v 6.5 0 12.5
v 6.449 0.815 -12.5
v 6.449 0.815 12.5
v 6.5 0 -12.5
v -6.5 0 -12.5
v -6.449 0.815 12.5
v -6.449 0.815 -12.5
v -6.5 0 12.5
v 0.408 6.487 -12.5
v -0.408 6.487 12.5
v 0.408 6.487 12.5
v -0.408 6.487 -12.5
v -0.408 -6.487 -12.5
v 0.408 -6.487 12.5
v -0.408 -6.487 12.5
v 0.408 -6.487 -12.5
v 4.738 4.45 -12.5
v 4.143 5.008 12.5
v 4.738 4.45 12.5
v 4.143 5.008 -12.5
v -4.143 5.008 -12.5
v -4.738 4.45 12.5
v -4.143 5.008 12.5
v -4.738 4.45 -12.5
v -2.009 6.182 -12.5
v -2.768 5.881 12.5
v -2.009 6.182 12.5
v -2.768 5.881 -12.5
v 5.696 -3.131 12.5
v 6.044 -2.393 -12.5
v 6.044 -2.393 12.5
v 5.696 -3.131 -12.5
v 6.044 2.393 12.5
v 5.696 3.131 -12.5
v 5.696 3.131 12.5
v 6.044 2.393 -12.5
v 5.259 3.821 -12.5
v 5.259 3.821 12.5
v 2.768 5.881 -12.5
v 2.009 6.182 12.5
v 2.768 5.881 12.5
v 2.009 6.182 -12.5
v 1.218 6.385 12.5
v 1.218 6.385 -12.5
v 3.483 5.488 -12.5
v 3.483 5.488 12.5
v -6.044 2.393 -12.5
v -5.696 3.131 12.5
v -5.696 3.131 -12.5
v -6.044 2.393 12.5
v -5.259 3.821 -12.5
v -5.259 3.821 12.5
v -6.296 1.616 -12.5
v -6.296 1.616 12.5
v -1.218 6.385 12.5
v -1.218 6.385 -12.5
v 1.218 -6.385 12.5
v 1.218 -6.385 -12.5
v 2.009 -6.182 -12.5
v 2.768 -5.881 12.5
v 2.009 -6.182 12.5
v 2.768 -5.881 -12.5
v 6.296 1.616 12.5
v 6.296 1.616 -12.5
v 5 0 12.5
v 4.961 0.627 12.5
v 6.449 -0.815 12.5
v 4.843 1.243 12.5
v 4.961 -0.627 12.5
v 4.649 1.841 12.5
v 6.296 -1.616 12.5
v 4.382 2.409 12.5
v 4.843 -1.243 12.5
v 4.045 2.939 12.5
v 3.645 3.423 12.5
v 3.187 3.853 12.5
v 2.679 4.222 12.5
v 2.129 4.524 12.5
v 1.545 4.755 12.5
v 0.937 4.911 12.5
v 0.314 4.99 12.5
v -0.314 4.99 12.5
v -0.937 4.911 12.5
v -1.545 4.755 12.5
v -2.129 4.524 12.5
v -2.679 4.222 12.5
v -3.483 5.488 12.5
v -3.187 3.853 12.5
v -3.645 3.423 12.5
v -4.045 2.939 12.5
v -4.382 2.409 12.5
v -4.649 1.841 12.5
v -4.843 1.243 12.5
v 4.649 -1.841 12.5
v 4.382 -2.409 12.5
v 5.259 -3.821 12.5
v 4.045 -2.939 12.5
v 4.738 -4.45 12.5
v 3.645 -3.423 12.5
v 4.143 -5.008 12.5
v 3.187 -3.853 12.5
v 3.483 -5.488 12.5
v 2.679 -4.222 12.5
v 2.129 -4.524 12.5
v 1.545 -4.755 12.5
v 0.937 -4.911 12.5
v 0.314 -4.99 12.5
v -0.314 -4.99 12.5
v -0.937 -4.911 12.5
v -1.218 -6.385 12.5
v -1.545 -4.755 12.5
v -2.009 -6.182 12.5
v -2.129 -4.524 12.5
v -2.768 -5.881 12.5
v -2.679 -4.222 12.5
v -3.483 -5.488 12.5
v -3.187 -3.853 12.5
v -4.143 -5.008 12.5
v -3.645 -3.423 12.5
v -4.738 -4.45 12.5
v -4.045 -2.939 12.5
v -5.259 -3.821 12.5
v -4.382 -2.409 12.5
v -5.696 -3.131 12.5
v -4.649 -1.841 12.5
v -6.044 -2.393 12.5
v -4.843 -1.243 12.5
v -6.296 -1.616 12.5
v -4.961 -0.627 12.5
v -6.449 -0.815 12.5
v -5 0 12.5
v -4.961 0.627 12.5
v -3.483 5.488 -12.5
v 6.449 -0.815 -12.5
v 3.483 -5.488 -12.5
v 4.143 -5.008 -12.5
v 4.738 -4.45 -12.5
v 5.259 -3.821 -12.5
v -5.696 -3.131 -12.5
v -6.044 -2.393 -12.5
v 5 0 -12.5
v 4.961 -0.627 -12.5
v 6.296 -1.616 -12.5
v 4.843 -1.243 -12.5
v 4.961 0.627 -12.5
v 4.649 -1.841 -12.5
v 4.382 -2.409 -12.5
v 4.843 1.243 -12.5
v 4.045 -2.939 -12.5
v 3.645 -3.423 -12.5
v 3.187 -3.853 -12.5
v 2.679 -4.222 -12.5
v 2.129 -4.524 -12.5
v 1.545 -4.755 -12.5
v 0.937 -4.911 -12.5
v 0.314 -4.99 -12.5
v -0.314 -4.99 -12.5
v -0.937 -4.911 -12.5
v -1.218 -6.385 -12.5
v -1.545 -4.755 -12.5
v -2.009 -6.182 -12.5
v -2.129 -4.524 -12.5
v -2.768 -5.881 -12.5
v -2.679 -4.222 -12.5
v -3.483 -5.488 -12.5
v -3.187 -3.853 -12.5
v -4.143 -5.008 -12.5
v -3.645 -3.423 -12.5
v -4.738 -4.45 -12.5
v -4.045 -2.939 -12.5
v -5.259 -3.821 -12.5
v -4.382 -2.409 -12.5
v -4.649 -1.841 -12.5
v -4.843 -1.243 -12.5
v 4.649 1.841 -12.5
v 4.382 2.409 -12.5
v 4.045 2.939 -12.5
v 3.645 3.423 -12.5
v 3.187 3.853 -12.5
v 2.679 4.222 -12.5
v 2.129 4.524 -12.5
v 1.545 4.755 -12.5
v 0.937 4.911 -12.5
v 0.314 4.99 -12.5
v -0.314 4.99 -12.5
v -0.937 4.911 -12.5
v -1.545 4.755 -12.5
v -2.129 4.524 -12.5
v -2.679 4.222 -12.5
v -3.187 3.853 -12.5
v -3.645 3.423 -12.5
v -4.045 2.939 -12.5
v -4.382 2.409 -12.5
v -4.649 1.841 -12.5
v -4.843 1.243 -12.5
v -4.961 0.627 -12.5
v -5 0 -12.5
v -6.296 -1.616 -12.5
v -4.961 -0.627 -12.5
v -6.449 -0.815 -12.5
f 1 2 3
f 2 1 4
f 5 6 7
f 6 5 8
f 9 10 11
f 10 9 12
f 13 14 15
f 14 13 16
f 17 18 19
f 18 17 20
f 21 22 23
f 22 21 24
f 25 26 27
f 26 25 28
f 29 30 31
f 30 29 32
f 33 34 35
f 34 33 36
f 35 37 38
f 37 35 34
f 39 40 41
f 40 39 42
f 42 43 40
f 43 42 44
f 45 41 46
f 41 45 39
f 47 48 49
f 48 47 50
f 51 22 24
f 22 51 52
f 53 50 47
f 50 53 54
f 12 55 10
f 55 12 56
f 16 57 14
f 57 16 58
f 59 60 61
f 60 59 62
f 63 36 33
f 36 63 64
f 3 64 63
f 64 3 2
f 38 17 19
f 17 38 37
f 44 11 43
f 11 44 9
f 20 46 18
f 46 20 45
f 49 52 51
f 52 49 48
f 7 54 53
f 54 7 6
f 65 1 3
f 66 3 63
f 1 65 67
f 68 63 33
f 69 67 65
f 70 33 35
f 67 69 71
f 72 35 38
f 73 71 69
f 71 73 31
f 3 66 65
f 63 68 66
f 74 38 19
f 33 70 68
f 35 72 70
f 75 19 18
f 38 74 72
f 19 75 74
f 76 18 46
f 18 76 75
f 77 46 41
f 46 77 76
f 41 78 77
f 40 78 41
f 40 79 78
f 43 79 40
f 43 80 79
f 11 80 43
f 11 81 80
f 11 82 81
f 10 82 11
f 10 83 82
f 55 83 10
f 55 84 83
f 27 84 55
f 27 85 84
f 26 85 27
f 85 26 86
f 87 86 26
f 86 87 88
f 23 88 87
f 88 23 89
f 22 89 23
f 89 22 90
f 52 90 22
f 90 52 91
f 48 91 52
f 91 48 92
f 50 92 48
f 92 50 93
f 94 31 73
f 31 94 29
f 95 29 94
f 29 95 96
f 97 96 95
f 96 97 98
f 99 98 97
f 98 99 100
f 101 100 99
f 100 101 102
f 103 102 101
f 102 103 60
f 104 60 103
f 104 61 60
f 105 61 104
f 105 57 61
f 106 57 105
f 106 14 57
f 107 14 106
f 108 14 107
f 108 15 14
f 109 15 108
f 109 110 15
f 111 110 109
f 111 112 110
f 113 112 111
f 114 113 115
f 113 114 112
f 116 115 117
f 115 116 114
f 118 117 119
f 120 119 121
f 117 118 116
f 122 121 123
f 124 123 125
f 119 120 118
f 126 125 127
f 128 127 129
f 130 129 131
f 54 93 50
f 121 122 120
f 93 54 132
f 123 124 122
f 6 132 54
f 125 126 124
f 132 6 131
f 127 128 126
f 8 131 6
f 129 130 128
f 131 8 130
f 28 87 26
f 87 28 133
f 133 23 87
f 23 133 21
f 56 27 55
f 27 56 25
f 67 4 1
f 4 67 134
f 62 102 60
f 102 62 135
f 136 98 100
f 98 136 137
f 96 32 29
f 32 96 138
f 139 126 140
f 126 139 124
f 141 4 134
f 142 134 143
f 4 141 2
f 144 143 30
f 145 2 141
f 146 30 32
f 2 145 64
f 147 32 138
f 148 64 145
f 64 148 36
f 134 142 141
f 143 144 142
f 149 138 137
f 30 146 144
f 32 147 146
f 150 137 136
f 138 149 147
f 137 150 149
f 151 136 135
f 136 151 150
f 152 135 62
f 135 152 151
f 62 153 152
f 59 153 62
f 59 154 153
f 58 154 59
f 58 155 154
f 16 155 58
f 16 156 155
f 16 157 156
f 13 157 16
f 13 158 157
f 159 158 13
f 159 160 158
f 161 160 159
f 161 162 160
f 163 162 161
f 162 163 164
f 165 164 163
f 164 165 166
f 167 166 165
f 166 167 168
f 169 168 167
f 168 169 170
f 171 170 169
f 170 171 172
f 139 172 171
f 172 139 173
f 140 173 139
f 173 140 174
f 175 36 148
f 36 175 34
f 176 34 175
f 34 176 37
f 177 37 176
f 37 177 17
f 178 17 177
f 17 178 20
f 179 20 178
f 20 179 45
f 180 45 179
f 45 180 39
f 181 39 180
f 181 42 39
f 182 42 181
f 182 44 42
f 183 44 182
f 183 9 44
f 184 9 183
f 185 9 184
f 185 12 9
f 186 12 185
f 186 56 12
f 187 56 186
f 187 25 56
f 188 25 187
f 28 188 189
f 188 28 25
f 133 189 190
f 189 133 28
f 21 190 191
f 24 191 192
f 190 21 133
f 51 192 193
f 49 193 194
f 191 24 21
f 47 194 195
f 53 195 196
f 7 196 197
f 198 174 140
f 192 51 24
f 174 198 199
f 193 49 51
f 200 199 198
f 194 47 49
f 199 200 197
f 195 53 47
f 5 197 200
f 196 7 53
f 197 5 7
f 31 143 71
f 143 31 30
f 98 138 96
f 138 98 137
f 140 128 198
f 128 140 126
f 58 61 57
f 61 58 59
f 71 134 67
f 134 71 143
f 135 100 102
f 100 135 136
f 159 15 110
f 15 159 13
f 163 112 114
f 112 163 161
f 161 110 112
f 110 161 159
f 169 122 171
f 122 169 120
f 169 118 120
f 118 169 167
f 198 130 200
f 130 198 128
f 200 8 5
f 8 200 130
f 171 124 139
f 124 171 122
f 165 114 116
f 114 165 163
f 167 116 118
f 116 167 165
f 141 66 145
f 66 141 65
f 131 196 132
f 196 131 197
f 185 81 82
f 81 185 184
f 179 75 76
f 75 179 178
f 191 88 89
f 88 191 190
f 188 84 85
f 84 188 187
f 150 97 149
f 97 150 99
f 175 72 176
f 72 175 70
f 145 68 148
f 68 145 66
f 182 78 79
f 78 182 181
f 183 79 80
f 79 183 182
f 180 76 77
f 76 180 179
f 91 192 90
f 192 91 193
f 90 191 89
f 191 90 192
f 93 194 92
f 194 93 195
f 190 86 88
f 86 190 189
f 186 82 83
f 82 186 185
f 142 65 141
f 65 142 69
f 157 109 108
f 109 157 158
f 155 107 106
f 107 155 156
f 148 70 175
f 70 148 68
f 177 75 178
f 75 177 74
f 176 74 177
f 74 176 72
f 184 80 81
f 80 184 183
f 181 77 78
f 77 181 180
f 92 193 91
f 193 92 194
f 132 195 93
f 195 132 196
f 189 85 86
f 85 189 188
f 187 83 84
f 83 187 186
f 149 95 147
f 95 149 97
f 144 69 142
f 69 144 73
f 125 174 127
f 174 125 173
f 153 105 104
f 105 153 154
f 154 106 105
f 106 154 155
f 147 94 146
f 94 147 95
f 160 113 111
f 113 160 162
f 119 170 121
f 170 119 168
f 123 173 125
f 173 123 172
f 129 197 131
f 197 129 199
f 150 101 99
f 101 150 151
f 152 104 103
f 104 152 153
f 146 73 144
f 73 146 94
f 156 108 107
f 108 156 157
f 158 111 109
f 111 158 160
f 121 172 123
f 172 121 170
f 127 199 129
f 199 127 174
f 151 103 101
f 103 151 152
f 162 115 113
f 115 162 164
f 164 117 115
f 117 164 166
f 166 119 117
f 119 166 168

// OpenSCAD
$fn = 50;


difference() {
	union() {
		translate(v = [0, 0, -12.5000000000]) {
			cylinder(h = 25, r = 6.5000000000);
		}
	}
	union() {
		translate(v = [0, 0, -100.0000000000]) {
			cylinder(h = 200, r = 5);
		}
	}
}
